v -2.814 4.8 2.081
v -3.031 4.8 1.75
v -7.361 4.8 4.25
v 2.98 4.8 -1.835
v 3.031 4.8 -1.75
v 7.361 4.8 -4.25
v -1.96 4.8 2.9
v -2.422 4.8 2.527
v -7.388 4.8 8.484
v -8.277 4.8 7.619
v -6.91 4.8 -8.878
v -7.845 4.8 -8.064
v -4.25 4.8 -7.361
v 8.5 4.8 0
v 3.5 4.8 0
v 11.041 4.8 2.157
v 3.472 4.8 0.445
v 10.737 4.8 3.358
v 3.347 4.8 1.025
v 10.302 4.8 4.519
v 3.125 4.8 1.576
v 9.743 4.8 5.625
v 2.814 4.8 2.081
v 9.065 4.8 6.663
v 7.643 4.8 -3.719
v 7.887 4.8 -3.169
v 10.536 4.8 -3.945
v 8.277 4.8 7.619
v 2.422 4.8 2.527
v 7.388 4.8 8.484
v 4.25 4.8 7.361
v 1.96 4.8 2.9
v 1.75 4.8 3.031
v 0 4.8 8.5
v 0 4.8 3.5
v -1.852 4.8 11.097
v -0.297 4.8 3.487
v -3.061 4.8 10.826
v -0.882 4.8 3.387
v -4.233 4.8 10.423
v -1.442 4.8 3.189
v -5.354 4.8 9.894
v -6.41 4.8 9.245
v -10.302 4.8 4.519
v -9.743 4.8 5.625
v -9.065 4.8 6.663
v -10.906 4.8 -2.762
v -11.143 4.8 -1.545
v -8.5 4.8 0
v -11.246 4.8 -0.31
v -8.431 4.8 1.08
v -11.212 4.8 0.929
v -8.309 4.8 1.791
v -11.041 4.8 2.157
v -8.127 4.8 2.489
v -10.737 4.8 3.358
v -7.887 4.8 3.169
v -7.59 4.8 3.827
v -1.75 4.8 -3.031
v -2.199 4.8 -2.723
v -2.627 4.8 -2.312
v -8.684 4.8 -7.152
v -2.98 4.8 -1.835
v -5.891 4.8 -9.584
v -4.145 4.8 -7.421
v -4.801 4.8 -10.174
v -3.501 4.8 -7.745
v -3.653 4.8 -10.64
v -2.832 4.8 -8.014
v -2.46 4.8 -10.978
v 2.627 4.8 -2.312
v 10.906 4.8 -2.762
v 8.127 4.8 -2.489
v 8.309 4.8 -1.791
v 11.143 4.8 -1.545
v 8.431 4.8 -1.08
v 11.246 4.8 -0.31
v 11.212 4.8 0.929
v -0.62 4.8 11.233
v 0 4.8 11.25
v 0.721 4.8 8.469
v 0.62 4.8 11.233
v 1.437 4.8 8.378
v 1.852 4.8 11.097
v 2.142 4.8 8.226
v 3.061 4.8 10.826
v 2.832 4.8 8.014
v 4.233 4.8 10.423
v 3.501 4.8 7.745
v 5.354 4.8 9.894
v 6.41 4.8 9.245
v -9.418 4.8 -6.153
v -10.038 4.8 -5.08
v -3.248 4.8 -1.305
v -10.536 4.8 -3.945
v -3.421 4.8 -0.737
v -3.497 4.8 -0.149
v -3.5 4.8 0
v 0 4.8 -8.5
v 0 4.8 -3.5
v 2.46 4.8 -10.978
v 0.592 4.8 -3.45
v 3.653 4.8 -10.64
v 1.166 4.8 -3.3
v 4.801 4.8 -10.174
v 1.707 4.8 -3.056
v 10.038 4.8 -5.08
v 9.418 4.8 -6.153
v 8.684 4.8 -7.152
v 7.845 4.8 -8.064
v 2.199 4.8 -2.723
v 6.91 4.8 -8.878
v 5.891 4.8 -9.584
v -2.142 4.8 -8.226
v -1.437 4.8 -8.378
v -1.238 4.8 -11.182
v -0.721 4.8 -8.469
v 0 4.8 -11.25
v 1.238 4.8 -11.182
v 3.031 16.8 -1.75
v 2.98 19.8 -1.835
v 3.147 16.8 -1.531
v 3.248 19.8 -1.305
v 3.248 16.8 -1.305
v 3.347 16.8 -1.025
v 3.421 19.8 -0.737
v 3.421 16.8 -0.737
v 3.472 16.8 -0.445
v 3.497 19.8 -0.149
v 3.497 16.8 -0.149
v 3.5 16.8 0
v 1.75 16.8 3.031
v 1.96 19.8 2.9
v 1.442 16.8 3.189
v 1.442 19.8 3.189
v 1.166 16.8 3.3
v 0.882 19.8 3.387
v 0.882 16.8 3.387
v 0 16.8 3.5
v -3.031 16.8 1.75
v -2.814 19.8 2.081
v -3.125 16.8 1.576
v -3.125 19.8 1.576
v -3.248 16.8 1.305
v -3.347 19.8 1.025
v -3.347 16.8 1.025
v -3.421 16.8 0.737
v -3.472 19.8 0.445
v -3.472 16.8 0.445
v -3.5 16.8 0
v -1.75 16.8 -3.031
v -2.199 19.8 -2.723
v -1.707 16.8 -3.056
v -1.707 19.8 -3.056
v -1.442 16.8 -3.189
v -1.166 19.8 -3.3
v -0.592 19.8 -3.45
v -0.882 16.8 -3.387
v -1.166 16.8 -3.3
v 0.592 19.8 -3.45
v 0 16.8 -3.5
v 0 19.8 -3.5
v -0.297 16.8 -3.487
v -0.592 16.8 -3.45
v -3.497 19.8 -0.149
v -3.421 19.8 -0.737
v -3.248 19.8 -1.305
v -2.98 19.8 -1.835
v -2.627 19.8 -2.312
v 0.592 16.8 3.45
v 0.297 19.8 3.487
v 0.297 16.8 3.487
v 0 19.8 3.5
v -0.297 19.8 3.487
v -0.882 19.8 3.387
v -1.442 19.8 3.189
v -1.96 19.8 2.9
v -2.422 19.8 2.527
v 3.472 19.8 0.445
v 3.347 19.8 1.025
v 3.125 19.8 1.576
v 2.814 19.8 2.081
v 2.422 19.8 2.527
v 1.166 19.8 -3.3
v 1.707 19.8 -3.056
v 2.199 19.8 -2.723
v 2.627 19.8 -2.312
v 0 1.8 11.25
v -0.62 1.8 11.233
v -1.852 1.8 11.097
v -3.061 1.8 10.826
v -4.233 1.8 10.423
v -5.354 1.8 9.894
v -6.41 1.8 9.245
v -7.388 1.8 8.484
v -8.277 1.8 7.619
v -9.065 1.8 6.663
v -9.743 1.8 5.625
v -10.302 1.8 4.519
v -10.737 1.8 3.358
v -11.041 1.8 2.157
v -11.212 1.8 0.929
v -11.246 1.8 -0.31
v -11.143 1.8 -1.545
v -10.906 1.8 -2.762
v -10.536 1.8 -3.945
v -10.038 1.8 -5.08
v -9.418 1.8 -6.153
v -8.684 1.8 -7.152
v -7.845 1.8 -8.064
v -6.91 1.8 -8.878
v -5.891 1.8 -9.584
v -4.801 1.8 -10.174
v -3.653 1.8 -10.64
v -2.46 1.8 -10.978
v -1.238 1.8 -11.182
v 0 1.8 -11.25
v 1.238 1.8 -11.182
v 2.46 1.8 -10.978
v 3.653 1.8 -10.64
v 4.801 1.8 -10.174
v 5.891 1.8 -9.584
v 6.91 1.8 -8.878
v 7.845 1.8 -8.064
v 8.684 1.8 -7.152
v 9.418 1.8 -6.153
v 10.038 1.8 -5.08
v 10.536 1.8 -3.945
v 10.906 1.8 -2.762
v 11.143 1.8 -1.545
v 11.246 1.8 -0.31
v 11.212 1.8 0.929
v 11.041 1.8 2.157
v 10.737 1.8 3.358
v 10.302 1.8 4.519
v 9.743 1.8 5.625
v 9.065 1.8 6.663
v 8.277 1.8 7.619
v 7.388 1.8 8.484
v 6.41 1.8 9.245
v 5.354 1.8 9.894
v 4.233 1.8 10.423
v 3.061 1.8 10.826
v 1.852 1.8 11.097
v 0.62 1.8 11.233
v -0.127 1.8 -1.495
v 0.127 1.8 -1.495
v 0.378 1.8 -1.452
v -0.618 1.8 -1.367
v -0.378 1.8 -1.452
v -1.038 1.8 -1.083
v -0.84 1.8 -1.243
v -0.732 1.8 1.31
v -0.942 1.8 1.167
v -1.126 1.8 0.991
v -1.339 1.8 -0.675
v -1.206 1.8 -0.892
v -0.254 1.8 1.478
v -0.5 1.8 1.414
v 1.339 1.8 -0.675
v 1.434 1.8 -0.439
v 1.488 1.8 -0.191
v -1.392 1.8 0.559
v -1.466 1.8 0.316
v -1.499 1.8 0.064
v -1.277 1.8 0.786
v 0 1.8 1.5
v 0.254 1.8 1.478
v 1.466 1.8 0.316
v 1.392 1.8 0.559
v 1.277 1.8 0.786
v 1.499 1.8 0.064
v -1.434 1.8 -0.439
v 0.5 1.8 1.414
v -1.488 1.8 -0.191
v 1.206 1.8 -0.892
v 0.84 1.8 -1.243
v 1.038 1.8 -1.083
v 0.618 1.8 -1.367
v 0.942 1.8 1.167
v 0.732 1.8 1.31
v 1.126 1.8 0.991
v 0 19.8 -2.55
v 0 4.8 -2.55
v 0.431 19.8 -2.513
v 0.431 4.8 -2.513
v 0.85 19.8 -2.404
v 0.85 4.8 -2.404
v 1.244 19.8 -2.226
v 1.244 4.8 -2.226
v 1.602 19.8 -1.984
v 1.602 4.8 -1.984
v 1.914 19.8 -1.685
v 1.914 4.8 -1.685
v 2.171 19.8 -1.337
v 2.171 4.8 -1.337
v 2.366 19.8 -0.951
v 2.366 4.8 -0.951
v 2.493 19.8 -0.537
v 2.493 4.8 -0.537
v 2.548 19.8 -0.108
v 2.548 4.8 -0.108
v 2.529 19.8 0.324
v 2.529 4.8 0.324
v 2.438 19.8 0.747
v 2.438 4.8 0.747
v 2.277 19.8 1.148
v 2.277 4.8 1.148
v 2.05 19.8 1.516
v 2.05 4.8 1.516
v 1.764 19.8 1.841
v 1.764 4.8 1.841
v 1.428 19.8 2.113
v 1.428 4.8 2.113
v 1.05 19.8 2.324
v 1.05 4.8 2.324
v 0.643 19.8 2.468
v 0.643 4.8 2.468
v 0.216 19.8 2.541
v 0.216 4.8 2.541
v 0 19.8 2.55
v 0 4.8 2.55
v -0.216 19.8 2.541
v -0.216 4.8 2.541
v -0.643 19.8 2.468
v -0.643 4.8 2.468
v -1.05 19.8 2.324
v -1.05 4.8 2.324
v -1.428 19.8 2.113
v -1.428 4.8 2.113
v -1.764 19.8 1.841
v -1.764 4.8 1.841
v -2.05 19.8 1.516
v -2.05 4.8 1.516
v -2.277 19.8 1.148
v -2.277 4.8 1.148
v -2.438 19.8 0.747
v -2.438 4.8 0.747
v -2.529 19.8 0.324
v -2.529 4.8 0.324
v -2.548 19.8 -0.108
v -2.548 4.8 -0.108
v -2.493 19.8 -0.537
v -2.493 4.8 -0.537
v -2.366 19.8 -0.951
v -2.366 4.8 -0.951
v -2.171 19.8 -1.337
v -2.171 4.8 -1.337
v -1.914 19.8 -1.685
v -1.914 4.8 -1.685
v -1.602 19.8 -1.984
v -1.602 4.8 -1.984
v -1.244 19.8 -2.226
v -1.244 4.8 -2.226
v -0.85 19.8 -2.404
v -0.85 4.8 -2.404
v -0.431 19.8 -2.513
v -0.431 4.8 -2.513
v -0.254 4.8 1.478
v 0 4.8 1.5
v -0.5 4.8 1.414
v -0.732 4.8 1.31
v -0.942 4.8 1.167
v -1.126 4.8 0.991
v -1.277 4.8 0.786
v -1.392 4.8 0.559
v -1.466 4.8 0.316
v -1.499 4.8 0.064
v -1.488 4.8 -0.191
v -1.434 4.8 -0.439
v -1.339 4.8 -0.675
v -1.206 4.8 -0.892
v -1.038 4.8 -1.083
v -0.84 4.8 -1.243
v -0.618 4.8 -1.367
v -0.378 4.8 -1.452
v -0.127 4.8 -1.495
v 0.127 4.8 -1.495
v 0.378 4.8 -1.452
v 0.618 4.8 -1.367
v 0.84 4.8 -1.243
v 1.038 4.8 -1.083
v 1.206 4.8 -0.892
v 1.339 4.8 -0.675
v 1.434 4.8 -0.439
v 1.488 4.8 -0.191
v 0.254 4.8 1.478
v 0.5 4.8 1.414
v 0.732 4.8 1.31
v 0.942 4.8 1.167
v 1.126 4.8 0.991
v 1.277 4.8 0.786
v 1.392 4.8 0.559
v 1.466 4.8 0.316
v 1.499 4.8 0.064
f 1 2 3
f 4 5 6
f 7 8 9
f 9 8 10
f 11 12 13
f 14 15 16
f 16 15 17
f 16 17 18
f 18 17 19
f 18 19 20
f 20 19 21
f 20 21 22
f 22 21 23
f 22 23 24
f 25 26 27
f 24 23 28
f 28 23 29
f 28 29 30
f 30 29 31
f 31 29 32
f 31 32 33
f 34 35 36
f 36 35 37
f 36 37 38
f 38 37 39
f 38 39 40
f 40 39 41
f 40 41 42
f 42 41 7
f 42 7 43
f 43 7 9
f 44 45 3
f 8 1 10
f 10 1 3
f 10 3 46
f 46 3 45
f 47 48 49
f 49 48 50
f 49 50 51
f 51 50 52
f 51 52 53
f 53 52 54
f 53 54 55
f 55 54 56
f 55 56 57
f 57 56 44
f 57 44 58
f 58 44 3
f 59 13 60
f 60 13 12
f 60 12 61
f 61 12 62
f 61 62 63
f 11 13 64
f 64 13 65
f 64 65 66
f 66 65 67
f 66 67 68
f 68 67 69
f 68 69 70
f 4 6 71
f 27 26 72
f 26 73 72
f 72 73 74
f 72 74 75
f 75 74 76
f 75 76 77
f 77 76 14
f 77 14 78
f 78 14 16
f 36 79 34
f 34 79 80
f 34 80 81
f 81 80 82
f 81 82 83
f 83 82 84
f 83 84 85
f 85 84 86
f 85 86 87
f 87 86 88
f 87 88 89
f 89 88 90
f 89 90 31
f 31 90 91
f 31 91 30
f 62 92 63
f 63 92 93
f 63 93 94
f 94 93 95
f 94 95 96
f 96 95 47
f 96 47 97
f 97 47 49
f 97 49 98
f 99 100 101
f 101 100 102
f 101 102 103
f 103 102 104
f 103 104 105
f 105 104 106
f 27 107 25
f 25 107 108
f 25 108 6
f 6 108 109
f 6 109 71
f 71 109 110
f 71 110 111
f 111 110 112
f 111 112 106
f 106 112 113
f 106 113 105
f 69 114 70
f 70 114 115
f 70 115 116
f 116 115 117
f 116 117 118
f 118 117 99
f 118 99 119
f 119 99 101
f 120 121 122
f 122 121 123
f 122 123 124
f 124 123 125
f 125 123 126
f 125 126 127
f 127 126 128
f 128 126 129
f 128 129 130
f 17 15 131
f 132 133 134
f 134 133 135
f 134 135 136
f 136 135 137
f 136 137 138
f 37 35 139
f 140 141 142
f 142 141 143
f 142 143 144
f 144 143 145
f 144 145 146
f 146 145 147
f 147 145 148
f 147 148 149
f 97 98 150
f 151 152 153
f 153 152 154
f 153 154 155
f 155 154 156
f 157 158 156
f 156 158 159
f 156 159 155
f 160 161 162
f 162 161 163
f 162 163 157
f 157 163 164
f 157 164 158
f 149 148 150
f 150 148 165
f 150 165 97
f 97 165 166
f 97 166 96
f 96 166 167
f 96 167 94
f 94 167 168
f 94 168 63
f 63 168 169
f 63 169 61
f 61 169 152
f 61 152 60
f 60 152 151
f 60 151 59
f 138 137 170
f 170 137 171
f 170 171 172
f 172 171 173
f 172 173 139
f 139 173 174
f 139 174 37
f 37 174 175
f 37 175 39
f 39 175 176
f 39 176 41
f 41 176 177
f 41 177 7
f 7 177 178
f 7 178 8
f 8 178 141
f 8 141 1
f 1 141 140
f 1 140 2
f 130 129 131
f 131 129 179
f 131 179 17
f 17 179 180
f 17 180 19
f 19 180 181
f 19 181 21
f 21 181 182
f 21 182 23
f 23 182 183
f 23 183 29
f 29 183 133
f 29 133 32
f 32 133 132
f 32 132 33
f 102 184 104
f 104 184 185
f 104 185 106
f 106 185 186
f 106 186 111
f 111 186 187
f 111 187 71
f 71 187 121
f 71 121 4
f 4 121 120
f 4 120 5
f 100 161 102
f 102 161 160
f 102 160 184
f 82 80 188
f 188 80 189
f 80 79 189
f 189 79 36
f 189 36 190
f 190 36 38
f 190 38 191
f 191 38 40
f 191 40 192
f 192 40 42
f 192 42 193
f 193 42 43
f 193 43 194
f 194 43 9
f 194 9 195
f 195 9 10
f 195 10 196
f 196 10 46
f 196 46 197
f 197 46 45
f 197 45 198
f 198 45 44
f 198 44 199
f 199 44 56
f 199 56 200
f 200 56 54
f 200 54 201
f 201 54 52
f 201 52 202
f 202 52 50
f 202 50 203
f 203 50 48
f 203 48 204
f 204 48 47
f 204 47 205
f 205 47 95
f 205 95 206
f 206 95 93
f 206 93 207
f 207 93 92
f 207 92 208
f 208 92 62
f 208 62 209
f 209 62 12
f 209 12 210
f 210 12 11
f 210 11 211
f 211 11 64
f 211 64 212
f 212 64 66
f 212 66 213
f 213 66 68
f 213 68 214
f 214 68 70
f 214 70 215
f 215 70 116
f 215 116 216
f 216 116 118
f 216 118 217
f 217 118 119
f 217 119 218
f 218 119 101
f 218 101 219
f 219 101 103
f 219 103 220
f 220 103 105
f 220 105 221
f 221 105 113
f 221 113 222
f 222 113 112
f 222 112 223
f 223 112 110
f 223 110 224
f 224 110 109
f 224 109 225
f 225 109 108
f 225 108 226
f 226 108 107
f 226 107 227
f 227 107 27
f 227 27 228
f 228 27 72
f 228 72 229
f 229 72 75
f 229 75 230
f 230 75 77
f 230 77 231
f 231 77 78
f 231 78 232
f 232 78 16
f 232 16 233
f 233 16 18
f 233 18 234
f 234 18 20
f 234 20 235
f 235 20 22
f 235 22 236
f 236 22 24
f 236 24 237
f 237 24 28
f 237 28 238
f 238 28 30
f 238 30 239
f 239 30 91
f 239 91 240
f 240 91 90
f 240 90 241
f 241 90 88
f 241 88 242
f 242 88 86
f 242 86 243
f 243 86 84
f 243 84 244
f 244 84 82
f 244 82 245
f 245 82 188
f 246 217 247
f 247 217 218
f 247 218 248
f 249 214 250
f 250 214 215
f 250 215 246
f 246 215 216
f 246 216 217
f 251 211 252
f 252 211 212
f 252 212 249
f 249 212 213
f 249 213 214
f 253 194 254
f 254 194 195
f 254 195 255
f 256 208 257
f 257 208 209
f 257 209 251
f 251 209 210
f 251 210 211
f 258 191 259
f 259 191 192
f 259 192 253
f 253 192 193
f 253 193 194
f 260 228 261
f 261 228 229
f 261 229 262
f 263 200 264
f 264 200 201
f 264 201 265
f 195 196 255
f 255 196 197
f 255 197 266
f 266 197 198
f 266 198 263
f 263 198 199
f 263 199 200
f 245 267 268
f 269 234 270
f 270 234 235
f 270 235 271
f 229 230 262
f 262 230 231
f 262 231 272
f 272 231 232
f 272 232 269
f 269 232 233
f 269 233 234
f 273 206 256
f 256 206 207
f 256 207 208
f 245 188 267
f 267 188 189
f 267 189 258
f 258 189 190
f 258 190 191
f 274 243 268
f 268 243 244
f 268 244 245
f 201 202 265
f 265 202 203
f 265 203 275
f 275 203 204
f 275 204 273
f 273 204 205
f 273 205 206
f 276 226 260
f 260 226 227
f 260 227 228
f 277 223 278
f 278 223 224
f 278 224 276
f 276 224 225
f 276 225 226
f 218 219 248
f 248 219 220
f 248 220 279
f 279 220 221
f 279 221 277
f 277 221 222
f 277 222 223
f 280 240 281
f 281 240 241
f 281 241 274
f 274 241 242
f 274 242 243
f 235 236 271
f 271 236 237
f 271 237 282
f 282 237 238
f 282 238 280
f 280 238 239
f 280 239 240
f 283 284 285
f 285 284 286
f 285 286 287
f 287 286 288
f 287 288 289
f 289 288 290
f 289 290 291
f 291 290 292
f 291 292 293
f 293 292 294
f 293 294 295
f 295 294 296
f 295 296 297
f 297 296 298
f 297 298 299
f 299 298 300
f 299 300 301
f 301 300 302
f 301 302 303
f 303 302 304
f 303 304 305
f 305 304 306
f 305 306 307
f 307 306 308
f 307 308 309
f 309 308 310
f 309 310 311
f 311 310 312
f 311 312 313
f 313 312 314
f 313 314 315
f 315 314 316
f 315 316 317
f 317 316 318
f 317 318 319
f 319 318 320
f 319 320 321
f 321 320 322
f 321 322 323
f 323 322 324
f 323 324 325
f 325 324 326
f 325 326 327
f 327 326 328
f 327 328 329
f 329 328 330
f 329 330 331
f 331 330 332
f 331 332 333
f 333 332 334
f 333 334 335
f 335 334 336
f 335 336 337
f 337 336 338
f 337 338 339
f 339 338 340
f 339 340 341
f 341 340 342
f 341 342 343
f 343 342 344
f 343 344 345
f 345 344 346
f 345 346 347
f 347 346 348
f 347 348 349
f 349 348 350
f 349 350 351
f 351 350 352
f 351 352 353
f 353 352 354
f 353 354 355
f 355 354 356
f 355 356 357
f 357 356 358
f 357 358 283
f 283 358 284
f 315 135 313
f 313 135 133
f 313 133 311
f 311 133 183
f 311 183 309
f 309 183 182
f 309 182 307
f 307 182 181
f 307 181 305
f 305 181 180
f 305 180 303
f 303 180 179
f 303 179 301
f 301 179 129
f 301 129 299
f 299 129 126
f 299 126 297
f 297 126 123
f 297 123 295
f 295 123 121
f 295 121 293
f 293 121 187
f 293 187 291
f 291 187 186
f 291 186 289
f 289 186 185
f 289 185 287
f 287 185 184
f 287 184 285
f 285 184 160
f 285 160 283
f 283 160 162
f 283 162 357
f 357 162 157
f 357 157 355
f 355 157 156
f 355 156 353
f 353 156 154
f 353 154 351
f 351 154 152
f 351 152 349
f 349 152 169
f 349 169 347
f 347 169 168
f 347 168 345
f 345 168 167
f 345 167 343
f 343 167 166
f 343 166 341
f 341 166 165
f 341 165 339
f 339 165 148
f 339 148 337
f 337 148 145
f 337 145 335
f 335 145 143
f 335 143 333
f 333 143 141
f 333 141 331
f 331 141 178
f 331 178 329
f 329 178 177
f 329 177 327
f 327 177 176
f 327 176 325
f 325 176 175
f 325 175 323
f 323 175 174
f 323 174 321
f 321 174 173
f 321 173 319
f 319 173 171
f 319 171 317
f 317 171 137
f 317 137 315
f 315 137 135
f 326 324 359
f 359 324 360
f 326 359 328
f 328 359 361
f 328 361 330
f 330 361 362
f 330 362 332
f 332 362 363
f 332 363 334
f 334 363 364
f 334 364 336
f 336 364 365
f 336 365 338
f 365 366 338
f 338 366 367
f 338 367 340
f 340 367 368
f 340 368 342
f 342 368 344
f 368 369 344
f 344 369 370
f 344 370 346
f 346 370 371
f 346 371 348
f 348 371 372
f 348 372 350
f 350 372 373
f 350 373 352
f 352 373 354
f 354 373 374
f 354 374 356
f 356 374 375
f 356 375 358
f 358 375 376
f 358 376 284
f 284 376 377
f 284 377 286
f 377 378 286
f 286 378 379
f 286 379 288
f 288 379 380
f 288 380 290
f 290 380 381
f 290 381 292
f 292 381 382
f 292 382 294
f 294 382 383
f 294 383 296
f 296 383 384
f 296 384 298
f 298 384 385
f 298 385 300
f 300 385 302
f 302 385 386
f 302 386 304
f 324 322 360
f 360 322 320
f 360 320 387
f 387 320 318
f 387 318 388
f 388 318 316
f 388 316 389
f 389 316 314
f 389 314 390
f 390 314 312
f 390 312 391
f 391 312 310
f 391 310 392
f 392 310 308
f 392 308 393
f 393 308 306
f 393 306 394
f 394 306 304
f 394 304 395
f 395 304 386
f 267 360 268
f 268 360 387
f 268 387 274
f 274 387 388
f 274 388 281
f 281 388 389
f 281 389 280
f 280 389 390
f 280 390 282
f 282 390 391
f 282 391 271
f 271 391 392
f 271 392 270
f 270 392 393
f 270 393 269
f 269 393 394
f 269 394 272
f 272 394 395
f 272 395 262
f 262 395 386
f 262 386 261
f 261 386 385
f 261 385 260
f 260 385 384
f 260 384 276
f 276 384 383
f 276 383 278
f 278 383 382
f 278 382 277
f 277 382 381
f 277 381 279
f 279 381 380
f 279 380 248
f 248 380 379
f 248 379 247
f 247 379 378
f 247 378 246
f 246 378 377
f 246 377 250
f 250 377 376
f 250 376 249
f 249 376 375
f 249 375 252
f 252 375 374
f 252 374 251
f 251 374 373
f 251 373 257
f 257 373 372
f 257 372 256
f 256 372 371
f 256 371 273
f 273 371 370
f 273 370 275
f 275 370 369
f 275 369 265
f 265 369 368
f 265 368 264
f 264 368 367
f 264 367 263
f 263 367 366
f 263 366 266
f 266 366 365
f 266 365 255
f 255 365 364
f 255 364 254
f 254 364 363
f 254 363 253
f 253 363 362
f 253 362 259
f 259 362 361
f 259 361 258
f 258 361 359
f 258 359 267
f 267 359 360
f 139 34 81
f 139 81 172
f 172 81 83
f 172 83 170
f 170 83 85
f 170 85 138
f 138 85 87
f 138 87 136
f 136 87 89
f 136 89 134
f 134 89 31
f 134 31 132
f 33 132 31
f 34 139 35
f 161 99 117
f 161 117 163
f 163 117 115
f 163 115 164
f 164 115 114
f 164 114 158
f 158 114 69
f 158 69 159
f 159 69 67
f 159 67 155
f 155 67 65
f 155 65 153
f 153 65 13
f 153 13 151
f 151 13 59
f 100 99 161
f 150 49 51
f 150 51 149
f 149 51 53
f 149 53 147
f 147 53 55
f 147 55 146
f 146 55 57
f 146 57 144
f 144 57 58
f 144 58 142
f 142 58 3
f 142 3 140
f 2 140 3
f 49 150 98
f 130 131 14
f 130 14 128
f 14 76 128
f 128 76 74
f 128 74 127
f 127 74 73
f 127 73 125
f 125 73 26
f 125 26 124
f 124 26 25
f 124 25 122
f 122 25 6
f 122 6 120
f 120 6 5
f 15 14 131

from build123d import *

# Parameters (mm, degrees)
SKETCH_1_R          = 10.4
EXTRUDE_1_DEPTH     = 1.8
SKETCH_2_R          = 11.25
EXTRUDE_2_DEPTH     = 3
SKETCH_3_R          = 3.5
SKETCH_3_R_2        = 2.55
EXTRUDE_3_DEPTH     = 15
SKETCH_3_4_R        = 1.5
CUT_EXTRUDE_2_DEPTH = 4.8
REVOLVE_3_ANGLE     = 30
REVOLVE_4_ANGLE     = 30
EXTRUDE_4_DEPTH     = 2
SKETCH_14_W         = 11.25
SKETCH_14_H         = 3.8


with BuildPart() as part:
    # 草图1 → 凸台-拉伸1 (new body)
    with BuildSketch(Plane(origin=(0, 0, 0), x_dir=(1, 0, 0), z_dir=(0, 1, 0))):
        with Locations(Location((0, 0, 0), (0, 0, 270))):
            Circle(SKETCH_1_R)
    extrude(amount=EXTRUDE_1_DEPTH)

    # 草图2 → 凸台-拉伸2 (add)
    with BuildSketch(Plane(origin=(0, 1.8, 0), x_dir=(1, 0, 0), z_dir=(0, 1, 0))):
        with Locations(Location((0, 0, 0), (0, 0, 270))):
            Circle(SKETCH_2_R)
    extrude(amount=EXTRUDE_2_DEPTH)

    # 草图3 → 凸台-拉伸3 (add)
    with BuildSketch(Plane(origin=(0, 4.8, 0), x_dir=(1, 0, 0), z_dir=(0, 1, 0))):
        with Locations(Location((0, 0, 0), (0, 0, 270))):
            Circle(SKETCH_3_R)
        with Locations(Location((0, 0, 0), (0, 0, 270))):
            Circle(SKETCH_3_R_2, mode=Mode.SUBTRACT)
    extrude(amount=EXTRUDE_3_DEPTH)

    # 草图3<4> → 切除-拉伸2 (cut)
    with BuildSketch(Plane(origin=(0, 4.8, 0), x_dir=(1, 0, 0), z_dir=(0, 1, 0))):
        with Locations(Location((0, 0, 0), (0, 0, 270))):
            Circle(SKETCH_3_4_R)
    extrude(amount=-CUT_EXTRUDE_2_DEPTH, mode=Mode.SUBTRACT)

    # 草图6 → 旋转3 (revolve)
    with BuildSketch(Plane(origin=(0, 0, 0), x_dir=(0, 0, -1), z_dir=(1, 0, 0))):
        Polygon((3.5, 4.8), (3.5, 16.8), (8.5, 4.8), align=None)
        Polygon((-8.5, 4.8), (-3.5, 4.8), (-3.5, 16.8), align=None)
    revolve(axis=Axis((0, 0, 0), (0, 1, 0)), revolution_arc=REVOLVE_3_ANGLE)

    # 草图9 → 旋转4 (revolve)
    with BuildSketch(Plane.XY):
        Polygon((3.5, 4.8), (8.5, 4.8), (3.5, 16.8), align=None)
        Polygon((-8.5, 4.8), (-3.5, 16.8), (-3.5, 4.8), align=None)
    revolve(axis=Axis((0, 0, 0), (0, 1, 0)), revolution_arc=REVOLVE_4_ANGLE)

    # 草图10 → 凸台-拉伸4 (add)
    with BuildSketch(Plane.XZ):
        with BuildLine():
            Line((9.961946981, -0.871557427), (10.858522209, -0.949997596))
            ThreePointArc((10.858522209, -0.949997596), (10.9, 0), (10.858522209, 0.949997596))
            Line((10.858522209, 0.949997596), (9.961946981, 0.871557427))
            ThreePointArc((9.961946981, 0.871557427), (9.84807753, 1.736481777), (9.659258263, 2.588190451))
            Line((9.659258263, 2.588190451), (8.693332437, 2.329371406))
            ThreePointArc((8.693332437, 2.329371406), (9, 0), (8.693332437, -2.329371406))
            Line((8.693332437, -2.329371406), (9.659258263, -2.588190451))
            ThreePointArc((9.659258263, -2.588190451), (9.84807753, -1.736481777), (9.961946981, -0.871557427))
        make_face()
        with BuildLine():
            Line((2.329371406, 8.693332437), (2.588190451, 9.659258263))
            ThreePointArc((2.588190451, 9.659258263), (1.736481777, 9.84807753), (0.871557427, 9.961946981))
            Line((0.871557427, 9.961946981), (0.949997596, 10.858522209))
            ThreePointArc((0.949997596, 10.858522209), (0, 10.9), (-0.949997596, 10.858522209))
            Line((-0.949997596, 10.858522209), (-0.871557427, 9.961946981))
            ThreePointArc((-0.871557427, 9.961946981), (-1.736481777, 9.84807753), (-2.588190451, 9.659258263))
            Line((-2.588190451, 9.659258263), (-2.329371406, 8.693332437))
            ThreePointArc((-2.329371406, 8.693332437), (0, 9), (2.329371406, 8.693332437))
        make_face()
        with BuildLine():
            Line((-2.329371406, -8.693332437), (-2.588190451, -9.659258263))
            ThreePointArc((-2.588190451, -9.659258263), (-1.736481777, -9.84807753), (-0.871557427, -9.961946981))
            Line((-0.871557427, -9.961946981), (-0.949997596, -10.858522209))
            ThreePointArc((-0.949997596, -10.858522209), (0, -10.9), (0.949997596, -10.858522209))
            Line((0.949997596, -10.858522209), (0.871557427, -9.961946981))
            ThreePointArc((0.871557427, -9.961946981), (1.736481777, -9.84807753), (2.588190451, -9.659258263))
            Line((2.588190451, -9.659258263), (2.329371406, -8.693332437))
            ThreePointArc((2.329371406, -8.693332437), (0, -9), (-2.329371406, -8.693332437))
        make_face()
        with BuildLine():
            Line((-8.693332437, 2.329371406), (-9.659258263, 2.588190451))
            ThreePointArc((-9.659258263, 2.588190451), (-9.84807753, 1.736481777), (-9.961946981, 0.871557427))
            Line((-9.961946981, 0.871557427), (-10.858522209, 0.949997596))
            ThreePointArc((-10.858522209, 0.949997596), (-10.9, 0), (-10.858522209, -0.949997596))
            Line((-10.858522209, -0.949997596), (-9.961946981, -0.871557427))
            ThreePointArc((-9.961946981, -0.871557427), (-9.84807753, -1.736481777), (-9.659258263, -2.588190451))
            Line((-9.659258263, -2.588190451), (-8.693332437, -2.329371406))
            ThreePointArc((-8.693332437, -2.329371406), (-9, 0), (-8.693332437, 2.329371406))
        make_face()
    extrude(amount=EXTRUDE_4_DEPTH)

    # 草图11 → 切除-旋转2 (revolve, cut)
    with BuildSketch(Plane.XY, mode=Mode.PRIVATE) as cut_revolve_2_sk:
        Polygon((9.961946981, -2), (10.9, -2), (10.9, 0), align=None)
    revolve(cut_revolve_2_sk.sketch.rotate(Axis((0, 0, 0), (0, -1, 0)), 275), axis=Axis((0, 0, 0), (0, -1, 0)), mode=Mode.SUBTRACT)

    # 草图14 → 切除-旋转3 (revolve, cut)
    with BuildSketch(Plane(origin=(0, 0, 0), x_dir=(0, 0, -1), z_dir=(1, 0, 0))):
        with Locations((-5.625, -0.1)):
            Rectangle(SKETCH_14_W, SKETCH_14_H)
    revolve(axis=Axis((0, 1.8, 0), (0, -1, 0)), mode=Mode.SUBTRACT)


solid = part.part
